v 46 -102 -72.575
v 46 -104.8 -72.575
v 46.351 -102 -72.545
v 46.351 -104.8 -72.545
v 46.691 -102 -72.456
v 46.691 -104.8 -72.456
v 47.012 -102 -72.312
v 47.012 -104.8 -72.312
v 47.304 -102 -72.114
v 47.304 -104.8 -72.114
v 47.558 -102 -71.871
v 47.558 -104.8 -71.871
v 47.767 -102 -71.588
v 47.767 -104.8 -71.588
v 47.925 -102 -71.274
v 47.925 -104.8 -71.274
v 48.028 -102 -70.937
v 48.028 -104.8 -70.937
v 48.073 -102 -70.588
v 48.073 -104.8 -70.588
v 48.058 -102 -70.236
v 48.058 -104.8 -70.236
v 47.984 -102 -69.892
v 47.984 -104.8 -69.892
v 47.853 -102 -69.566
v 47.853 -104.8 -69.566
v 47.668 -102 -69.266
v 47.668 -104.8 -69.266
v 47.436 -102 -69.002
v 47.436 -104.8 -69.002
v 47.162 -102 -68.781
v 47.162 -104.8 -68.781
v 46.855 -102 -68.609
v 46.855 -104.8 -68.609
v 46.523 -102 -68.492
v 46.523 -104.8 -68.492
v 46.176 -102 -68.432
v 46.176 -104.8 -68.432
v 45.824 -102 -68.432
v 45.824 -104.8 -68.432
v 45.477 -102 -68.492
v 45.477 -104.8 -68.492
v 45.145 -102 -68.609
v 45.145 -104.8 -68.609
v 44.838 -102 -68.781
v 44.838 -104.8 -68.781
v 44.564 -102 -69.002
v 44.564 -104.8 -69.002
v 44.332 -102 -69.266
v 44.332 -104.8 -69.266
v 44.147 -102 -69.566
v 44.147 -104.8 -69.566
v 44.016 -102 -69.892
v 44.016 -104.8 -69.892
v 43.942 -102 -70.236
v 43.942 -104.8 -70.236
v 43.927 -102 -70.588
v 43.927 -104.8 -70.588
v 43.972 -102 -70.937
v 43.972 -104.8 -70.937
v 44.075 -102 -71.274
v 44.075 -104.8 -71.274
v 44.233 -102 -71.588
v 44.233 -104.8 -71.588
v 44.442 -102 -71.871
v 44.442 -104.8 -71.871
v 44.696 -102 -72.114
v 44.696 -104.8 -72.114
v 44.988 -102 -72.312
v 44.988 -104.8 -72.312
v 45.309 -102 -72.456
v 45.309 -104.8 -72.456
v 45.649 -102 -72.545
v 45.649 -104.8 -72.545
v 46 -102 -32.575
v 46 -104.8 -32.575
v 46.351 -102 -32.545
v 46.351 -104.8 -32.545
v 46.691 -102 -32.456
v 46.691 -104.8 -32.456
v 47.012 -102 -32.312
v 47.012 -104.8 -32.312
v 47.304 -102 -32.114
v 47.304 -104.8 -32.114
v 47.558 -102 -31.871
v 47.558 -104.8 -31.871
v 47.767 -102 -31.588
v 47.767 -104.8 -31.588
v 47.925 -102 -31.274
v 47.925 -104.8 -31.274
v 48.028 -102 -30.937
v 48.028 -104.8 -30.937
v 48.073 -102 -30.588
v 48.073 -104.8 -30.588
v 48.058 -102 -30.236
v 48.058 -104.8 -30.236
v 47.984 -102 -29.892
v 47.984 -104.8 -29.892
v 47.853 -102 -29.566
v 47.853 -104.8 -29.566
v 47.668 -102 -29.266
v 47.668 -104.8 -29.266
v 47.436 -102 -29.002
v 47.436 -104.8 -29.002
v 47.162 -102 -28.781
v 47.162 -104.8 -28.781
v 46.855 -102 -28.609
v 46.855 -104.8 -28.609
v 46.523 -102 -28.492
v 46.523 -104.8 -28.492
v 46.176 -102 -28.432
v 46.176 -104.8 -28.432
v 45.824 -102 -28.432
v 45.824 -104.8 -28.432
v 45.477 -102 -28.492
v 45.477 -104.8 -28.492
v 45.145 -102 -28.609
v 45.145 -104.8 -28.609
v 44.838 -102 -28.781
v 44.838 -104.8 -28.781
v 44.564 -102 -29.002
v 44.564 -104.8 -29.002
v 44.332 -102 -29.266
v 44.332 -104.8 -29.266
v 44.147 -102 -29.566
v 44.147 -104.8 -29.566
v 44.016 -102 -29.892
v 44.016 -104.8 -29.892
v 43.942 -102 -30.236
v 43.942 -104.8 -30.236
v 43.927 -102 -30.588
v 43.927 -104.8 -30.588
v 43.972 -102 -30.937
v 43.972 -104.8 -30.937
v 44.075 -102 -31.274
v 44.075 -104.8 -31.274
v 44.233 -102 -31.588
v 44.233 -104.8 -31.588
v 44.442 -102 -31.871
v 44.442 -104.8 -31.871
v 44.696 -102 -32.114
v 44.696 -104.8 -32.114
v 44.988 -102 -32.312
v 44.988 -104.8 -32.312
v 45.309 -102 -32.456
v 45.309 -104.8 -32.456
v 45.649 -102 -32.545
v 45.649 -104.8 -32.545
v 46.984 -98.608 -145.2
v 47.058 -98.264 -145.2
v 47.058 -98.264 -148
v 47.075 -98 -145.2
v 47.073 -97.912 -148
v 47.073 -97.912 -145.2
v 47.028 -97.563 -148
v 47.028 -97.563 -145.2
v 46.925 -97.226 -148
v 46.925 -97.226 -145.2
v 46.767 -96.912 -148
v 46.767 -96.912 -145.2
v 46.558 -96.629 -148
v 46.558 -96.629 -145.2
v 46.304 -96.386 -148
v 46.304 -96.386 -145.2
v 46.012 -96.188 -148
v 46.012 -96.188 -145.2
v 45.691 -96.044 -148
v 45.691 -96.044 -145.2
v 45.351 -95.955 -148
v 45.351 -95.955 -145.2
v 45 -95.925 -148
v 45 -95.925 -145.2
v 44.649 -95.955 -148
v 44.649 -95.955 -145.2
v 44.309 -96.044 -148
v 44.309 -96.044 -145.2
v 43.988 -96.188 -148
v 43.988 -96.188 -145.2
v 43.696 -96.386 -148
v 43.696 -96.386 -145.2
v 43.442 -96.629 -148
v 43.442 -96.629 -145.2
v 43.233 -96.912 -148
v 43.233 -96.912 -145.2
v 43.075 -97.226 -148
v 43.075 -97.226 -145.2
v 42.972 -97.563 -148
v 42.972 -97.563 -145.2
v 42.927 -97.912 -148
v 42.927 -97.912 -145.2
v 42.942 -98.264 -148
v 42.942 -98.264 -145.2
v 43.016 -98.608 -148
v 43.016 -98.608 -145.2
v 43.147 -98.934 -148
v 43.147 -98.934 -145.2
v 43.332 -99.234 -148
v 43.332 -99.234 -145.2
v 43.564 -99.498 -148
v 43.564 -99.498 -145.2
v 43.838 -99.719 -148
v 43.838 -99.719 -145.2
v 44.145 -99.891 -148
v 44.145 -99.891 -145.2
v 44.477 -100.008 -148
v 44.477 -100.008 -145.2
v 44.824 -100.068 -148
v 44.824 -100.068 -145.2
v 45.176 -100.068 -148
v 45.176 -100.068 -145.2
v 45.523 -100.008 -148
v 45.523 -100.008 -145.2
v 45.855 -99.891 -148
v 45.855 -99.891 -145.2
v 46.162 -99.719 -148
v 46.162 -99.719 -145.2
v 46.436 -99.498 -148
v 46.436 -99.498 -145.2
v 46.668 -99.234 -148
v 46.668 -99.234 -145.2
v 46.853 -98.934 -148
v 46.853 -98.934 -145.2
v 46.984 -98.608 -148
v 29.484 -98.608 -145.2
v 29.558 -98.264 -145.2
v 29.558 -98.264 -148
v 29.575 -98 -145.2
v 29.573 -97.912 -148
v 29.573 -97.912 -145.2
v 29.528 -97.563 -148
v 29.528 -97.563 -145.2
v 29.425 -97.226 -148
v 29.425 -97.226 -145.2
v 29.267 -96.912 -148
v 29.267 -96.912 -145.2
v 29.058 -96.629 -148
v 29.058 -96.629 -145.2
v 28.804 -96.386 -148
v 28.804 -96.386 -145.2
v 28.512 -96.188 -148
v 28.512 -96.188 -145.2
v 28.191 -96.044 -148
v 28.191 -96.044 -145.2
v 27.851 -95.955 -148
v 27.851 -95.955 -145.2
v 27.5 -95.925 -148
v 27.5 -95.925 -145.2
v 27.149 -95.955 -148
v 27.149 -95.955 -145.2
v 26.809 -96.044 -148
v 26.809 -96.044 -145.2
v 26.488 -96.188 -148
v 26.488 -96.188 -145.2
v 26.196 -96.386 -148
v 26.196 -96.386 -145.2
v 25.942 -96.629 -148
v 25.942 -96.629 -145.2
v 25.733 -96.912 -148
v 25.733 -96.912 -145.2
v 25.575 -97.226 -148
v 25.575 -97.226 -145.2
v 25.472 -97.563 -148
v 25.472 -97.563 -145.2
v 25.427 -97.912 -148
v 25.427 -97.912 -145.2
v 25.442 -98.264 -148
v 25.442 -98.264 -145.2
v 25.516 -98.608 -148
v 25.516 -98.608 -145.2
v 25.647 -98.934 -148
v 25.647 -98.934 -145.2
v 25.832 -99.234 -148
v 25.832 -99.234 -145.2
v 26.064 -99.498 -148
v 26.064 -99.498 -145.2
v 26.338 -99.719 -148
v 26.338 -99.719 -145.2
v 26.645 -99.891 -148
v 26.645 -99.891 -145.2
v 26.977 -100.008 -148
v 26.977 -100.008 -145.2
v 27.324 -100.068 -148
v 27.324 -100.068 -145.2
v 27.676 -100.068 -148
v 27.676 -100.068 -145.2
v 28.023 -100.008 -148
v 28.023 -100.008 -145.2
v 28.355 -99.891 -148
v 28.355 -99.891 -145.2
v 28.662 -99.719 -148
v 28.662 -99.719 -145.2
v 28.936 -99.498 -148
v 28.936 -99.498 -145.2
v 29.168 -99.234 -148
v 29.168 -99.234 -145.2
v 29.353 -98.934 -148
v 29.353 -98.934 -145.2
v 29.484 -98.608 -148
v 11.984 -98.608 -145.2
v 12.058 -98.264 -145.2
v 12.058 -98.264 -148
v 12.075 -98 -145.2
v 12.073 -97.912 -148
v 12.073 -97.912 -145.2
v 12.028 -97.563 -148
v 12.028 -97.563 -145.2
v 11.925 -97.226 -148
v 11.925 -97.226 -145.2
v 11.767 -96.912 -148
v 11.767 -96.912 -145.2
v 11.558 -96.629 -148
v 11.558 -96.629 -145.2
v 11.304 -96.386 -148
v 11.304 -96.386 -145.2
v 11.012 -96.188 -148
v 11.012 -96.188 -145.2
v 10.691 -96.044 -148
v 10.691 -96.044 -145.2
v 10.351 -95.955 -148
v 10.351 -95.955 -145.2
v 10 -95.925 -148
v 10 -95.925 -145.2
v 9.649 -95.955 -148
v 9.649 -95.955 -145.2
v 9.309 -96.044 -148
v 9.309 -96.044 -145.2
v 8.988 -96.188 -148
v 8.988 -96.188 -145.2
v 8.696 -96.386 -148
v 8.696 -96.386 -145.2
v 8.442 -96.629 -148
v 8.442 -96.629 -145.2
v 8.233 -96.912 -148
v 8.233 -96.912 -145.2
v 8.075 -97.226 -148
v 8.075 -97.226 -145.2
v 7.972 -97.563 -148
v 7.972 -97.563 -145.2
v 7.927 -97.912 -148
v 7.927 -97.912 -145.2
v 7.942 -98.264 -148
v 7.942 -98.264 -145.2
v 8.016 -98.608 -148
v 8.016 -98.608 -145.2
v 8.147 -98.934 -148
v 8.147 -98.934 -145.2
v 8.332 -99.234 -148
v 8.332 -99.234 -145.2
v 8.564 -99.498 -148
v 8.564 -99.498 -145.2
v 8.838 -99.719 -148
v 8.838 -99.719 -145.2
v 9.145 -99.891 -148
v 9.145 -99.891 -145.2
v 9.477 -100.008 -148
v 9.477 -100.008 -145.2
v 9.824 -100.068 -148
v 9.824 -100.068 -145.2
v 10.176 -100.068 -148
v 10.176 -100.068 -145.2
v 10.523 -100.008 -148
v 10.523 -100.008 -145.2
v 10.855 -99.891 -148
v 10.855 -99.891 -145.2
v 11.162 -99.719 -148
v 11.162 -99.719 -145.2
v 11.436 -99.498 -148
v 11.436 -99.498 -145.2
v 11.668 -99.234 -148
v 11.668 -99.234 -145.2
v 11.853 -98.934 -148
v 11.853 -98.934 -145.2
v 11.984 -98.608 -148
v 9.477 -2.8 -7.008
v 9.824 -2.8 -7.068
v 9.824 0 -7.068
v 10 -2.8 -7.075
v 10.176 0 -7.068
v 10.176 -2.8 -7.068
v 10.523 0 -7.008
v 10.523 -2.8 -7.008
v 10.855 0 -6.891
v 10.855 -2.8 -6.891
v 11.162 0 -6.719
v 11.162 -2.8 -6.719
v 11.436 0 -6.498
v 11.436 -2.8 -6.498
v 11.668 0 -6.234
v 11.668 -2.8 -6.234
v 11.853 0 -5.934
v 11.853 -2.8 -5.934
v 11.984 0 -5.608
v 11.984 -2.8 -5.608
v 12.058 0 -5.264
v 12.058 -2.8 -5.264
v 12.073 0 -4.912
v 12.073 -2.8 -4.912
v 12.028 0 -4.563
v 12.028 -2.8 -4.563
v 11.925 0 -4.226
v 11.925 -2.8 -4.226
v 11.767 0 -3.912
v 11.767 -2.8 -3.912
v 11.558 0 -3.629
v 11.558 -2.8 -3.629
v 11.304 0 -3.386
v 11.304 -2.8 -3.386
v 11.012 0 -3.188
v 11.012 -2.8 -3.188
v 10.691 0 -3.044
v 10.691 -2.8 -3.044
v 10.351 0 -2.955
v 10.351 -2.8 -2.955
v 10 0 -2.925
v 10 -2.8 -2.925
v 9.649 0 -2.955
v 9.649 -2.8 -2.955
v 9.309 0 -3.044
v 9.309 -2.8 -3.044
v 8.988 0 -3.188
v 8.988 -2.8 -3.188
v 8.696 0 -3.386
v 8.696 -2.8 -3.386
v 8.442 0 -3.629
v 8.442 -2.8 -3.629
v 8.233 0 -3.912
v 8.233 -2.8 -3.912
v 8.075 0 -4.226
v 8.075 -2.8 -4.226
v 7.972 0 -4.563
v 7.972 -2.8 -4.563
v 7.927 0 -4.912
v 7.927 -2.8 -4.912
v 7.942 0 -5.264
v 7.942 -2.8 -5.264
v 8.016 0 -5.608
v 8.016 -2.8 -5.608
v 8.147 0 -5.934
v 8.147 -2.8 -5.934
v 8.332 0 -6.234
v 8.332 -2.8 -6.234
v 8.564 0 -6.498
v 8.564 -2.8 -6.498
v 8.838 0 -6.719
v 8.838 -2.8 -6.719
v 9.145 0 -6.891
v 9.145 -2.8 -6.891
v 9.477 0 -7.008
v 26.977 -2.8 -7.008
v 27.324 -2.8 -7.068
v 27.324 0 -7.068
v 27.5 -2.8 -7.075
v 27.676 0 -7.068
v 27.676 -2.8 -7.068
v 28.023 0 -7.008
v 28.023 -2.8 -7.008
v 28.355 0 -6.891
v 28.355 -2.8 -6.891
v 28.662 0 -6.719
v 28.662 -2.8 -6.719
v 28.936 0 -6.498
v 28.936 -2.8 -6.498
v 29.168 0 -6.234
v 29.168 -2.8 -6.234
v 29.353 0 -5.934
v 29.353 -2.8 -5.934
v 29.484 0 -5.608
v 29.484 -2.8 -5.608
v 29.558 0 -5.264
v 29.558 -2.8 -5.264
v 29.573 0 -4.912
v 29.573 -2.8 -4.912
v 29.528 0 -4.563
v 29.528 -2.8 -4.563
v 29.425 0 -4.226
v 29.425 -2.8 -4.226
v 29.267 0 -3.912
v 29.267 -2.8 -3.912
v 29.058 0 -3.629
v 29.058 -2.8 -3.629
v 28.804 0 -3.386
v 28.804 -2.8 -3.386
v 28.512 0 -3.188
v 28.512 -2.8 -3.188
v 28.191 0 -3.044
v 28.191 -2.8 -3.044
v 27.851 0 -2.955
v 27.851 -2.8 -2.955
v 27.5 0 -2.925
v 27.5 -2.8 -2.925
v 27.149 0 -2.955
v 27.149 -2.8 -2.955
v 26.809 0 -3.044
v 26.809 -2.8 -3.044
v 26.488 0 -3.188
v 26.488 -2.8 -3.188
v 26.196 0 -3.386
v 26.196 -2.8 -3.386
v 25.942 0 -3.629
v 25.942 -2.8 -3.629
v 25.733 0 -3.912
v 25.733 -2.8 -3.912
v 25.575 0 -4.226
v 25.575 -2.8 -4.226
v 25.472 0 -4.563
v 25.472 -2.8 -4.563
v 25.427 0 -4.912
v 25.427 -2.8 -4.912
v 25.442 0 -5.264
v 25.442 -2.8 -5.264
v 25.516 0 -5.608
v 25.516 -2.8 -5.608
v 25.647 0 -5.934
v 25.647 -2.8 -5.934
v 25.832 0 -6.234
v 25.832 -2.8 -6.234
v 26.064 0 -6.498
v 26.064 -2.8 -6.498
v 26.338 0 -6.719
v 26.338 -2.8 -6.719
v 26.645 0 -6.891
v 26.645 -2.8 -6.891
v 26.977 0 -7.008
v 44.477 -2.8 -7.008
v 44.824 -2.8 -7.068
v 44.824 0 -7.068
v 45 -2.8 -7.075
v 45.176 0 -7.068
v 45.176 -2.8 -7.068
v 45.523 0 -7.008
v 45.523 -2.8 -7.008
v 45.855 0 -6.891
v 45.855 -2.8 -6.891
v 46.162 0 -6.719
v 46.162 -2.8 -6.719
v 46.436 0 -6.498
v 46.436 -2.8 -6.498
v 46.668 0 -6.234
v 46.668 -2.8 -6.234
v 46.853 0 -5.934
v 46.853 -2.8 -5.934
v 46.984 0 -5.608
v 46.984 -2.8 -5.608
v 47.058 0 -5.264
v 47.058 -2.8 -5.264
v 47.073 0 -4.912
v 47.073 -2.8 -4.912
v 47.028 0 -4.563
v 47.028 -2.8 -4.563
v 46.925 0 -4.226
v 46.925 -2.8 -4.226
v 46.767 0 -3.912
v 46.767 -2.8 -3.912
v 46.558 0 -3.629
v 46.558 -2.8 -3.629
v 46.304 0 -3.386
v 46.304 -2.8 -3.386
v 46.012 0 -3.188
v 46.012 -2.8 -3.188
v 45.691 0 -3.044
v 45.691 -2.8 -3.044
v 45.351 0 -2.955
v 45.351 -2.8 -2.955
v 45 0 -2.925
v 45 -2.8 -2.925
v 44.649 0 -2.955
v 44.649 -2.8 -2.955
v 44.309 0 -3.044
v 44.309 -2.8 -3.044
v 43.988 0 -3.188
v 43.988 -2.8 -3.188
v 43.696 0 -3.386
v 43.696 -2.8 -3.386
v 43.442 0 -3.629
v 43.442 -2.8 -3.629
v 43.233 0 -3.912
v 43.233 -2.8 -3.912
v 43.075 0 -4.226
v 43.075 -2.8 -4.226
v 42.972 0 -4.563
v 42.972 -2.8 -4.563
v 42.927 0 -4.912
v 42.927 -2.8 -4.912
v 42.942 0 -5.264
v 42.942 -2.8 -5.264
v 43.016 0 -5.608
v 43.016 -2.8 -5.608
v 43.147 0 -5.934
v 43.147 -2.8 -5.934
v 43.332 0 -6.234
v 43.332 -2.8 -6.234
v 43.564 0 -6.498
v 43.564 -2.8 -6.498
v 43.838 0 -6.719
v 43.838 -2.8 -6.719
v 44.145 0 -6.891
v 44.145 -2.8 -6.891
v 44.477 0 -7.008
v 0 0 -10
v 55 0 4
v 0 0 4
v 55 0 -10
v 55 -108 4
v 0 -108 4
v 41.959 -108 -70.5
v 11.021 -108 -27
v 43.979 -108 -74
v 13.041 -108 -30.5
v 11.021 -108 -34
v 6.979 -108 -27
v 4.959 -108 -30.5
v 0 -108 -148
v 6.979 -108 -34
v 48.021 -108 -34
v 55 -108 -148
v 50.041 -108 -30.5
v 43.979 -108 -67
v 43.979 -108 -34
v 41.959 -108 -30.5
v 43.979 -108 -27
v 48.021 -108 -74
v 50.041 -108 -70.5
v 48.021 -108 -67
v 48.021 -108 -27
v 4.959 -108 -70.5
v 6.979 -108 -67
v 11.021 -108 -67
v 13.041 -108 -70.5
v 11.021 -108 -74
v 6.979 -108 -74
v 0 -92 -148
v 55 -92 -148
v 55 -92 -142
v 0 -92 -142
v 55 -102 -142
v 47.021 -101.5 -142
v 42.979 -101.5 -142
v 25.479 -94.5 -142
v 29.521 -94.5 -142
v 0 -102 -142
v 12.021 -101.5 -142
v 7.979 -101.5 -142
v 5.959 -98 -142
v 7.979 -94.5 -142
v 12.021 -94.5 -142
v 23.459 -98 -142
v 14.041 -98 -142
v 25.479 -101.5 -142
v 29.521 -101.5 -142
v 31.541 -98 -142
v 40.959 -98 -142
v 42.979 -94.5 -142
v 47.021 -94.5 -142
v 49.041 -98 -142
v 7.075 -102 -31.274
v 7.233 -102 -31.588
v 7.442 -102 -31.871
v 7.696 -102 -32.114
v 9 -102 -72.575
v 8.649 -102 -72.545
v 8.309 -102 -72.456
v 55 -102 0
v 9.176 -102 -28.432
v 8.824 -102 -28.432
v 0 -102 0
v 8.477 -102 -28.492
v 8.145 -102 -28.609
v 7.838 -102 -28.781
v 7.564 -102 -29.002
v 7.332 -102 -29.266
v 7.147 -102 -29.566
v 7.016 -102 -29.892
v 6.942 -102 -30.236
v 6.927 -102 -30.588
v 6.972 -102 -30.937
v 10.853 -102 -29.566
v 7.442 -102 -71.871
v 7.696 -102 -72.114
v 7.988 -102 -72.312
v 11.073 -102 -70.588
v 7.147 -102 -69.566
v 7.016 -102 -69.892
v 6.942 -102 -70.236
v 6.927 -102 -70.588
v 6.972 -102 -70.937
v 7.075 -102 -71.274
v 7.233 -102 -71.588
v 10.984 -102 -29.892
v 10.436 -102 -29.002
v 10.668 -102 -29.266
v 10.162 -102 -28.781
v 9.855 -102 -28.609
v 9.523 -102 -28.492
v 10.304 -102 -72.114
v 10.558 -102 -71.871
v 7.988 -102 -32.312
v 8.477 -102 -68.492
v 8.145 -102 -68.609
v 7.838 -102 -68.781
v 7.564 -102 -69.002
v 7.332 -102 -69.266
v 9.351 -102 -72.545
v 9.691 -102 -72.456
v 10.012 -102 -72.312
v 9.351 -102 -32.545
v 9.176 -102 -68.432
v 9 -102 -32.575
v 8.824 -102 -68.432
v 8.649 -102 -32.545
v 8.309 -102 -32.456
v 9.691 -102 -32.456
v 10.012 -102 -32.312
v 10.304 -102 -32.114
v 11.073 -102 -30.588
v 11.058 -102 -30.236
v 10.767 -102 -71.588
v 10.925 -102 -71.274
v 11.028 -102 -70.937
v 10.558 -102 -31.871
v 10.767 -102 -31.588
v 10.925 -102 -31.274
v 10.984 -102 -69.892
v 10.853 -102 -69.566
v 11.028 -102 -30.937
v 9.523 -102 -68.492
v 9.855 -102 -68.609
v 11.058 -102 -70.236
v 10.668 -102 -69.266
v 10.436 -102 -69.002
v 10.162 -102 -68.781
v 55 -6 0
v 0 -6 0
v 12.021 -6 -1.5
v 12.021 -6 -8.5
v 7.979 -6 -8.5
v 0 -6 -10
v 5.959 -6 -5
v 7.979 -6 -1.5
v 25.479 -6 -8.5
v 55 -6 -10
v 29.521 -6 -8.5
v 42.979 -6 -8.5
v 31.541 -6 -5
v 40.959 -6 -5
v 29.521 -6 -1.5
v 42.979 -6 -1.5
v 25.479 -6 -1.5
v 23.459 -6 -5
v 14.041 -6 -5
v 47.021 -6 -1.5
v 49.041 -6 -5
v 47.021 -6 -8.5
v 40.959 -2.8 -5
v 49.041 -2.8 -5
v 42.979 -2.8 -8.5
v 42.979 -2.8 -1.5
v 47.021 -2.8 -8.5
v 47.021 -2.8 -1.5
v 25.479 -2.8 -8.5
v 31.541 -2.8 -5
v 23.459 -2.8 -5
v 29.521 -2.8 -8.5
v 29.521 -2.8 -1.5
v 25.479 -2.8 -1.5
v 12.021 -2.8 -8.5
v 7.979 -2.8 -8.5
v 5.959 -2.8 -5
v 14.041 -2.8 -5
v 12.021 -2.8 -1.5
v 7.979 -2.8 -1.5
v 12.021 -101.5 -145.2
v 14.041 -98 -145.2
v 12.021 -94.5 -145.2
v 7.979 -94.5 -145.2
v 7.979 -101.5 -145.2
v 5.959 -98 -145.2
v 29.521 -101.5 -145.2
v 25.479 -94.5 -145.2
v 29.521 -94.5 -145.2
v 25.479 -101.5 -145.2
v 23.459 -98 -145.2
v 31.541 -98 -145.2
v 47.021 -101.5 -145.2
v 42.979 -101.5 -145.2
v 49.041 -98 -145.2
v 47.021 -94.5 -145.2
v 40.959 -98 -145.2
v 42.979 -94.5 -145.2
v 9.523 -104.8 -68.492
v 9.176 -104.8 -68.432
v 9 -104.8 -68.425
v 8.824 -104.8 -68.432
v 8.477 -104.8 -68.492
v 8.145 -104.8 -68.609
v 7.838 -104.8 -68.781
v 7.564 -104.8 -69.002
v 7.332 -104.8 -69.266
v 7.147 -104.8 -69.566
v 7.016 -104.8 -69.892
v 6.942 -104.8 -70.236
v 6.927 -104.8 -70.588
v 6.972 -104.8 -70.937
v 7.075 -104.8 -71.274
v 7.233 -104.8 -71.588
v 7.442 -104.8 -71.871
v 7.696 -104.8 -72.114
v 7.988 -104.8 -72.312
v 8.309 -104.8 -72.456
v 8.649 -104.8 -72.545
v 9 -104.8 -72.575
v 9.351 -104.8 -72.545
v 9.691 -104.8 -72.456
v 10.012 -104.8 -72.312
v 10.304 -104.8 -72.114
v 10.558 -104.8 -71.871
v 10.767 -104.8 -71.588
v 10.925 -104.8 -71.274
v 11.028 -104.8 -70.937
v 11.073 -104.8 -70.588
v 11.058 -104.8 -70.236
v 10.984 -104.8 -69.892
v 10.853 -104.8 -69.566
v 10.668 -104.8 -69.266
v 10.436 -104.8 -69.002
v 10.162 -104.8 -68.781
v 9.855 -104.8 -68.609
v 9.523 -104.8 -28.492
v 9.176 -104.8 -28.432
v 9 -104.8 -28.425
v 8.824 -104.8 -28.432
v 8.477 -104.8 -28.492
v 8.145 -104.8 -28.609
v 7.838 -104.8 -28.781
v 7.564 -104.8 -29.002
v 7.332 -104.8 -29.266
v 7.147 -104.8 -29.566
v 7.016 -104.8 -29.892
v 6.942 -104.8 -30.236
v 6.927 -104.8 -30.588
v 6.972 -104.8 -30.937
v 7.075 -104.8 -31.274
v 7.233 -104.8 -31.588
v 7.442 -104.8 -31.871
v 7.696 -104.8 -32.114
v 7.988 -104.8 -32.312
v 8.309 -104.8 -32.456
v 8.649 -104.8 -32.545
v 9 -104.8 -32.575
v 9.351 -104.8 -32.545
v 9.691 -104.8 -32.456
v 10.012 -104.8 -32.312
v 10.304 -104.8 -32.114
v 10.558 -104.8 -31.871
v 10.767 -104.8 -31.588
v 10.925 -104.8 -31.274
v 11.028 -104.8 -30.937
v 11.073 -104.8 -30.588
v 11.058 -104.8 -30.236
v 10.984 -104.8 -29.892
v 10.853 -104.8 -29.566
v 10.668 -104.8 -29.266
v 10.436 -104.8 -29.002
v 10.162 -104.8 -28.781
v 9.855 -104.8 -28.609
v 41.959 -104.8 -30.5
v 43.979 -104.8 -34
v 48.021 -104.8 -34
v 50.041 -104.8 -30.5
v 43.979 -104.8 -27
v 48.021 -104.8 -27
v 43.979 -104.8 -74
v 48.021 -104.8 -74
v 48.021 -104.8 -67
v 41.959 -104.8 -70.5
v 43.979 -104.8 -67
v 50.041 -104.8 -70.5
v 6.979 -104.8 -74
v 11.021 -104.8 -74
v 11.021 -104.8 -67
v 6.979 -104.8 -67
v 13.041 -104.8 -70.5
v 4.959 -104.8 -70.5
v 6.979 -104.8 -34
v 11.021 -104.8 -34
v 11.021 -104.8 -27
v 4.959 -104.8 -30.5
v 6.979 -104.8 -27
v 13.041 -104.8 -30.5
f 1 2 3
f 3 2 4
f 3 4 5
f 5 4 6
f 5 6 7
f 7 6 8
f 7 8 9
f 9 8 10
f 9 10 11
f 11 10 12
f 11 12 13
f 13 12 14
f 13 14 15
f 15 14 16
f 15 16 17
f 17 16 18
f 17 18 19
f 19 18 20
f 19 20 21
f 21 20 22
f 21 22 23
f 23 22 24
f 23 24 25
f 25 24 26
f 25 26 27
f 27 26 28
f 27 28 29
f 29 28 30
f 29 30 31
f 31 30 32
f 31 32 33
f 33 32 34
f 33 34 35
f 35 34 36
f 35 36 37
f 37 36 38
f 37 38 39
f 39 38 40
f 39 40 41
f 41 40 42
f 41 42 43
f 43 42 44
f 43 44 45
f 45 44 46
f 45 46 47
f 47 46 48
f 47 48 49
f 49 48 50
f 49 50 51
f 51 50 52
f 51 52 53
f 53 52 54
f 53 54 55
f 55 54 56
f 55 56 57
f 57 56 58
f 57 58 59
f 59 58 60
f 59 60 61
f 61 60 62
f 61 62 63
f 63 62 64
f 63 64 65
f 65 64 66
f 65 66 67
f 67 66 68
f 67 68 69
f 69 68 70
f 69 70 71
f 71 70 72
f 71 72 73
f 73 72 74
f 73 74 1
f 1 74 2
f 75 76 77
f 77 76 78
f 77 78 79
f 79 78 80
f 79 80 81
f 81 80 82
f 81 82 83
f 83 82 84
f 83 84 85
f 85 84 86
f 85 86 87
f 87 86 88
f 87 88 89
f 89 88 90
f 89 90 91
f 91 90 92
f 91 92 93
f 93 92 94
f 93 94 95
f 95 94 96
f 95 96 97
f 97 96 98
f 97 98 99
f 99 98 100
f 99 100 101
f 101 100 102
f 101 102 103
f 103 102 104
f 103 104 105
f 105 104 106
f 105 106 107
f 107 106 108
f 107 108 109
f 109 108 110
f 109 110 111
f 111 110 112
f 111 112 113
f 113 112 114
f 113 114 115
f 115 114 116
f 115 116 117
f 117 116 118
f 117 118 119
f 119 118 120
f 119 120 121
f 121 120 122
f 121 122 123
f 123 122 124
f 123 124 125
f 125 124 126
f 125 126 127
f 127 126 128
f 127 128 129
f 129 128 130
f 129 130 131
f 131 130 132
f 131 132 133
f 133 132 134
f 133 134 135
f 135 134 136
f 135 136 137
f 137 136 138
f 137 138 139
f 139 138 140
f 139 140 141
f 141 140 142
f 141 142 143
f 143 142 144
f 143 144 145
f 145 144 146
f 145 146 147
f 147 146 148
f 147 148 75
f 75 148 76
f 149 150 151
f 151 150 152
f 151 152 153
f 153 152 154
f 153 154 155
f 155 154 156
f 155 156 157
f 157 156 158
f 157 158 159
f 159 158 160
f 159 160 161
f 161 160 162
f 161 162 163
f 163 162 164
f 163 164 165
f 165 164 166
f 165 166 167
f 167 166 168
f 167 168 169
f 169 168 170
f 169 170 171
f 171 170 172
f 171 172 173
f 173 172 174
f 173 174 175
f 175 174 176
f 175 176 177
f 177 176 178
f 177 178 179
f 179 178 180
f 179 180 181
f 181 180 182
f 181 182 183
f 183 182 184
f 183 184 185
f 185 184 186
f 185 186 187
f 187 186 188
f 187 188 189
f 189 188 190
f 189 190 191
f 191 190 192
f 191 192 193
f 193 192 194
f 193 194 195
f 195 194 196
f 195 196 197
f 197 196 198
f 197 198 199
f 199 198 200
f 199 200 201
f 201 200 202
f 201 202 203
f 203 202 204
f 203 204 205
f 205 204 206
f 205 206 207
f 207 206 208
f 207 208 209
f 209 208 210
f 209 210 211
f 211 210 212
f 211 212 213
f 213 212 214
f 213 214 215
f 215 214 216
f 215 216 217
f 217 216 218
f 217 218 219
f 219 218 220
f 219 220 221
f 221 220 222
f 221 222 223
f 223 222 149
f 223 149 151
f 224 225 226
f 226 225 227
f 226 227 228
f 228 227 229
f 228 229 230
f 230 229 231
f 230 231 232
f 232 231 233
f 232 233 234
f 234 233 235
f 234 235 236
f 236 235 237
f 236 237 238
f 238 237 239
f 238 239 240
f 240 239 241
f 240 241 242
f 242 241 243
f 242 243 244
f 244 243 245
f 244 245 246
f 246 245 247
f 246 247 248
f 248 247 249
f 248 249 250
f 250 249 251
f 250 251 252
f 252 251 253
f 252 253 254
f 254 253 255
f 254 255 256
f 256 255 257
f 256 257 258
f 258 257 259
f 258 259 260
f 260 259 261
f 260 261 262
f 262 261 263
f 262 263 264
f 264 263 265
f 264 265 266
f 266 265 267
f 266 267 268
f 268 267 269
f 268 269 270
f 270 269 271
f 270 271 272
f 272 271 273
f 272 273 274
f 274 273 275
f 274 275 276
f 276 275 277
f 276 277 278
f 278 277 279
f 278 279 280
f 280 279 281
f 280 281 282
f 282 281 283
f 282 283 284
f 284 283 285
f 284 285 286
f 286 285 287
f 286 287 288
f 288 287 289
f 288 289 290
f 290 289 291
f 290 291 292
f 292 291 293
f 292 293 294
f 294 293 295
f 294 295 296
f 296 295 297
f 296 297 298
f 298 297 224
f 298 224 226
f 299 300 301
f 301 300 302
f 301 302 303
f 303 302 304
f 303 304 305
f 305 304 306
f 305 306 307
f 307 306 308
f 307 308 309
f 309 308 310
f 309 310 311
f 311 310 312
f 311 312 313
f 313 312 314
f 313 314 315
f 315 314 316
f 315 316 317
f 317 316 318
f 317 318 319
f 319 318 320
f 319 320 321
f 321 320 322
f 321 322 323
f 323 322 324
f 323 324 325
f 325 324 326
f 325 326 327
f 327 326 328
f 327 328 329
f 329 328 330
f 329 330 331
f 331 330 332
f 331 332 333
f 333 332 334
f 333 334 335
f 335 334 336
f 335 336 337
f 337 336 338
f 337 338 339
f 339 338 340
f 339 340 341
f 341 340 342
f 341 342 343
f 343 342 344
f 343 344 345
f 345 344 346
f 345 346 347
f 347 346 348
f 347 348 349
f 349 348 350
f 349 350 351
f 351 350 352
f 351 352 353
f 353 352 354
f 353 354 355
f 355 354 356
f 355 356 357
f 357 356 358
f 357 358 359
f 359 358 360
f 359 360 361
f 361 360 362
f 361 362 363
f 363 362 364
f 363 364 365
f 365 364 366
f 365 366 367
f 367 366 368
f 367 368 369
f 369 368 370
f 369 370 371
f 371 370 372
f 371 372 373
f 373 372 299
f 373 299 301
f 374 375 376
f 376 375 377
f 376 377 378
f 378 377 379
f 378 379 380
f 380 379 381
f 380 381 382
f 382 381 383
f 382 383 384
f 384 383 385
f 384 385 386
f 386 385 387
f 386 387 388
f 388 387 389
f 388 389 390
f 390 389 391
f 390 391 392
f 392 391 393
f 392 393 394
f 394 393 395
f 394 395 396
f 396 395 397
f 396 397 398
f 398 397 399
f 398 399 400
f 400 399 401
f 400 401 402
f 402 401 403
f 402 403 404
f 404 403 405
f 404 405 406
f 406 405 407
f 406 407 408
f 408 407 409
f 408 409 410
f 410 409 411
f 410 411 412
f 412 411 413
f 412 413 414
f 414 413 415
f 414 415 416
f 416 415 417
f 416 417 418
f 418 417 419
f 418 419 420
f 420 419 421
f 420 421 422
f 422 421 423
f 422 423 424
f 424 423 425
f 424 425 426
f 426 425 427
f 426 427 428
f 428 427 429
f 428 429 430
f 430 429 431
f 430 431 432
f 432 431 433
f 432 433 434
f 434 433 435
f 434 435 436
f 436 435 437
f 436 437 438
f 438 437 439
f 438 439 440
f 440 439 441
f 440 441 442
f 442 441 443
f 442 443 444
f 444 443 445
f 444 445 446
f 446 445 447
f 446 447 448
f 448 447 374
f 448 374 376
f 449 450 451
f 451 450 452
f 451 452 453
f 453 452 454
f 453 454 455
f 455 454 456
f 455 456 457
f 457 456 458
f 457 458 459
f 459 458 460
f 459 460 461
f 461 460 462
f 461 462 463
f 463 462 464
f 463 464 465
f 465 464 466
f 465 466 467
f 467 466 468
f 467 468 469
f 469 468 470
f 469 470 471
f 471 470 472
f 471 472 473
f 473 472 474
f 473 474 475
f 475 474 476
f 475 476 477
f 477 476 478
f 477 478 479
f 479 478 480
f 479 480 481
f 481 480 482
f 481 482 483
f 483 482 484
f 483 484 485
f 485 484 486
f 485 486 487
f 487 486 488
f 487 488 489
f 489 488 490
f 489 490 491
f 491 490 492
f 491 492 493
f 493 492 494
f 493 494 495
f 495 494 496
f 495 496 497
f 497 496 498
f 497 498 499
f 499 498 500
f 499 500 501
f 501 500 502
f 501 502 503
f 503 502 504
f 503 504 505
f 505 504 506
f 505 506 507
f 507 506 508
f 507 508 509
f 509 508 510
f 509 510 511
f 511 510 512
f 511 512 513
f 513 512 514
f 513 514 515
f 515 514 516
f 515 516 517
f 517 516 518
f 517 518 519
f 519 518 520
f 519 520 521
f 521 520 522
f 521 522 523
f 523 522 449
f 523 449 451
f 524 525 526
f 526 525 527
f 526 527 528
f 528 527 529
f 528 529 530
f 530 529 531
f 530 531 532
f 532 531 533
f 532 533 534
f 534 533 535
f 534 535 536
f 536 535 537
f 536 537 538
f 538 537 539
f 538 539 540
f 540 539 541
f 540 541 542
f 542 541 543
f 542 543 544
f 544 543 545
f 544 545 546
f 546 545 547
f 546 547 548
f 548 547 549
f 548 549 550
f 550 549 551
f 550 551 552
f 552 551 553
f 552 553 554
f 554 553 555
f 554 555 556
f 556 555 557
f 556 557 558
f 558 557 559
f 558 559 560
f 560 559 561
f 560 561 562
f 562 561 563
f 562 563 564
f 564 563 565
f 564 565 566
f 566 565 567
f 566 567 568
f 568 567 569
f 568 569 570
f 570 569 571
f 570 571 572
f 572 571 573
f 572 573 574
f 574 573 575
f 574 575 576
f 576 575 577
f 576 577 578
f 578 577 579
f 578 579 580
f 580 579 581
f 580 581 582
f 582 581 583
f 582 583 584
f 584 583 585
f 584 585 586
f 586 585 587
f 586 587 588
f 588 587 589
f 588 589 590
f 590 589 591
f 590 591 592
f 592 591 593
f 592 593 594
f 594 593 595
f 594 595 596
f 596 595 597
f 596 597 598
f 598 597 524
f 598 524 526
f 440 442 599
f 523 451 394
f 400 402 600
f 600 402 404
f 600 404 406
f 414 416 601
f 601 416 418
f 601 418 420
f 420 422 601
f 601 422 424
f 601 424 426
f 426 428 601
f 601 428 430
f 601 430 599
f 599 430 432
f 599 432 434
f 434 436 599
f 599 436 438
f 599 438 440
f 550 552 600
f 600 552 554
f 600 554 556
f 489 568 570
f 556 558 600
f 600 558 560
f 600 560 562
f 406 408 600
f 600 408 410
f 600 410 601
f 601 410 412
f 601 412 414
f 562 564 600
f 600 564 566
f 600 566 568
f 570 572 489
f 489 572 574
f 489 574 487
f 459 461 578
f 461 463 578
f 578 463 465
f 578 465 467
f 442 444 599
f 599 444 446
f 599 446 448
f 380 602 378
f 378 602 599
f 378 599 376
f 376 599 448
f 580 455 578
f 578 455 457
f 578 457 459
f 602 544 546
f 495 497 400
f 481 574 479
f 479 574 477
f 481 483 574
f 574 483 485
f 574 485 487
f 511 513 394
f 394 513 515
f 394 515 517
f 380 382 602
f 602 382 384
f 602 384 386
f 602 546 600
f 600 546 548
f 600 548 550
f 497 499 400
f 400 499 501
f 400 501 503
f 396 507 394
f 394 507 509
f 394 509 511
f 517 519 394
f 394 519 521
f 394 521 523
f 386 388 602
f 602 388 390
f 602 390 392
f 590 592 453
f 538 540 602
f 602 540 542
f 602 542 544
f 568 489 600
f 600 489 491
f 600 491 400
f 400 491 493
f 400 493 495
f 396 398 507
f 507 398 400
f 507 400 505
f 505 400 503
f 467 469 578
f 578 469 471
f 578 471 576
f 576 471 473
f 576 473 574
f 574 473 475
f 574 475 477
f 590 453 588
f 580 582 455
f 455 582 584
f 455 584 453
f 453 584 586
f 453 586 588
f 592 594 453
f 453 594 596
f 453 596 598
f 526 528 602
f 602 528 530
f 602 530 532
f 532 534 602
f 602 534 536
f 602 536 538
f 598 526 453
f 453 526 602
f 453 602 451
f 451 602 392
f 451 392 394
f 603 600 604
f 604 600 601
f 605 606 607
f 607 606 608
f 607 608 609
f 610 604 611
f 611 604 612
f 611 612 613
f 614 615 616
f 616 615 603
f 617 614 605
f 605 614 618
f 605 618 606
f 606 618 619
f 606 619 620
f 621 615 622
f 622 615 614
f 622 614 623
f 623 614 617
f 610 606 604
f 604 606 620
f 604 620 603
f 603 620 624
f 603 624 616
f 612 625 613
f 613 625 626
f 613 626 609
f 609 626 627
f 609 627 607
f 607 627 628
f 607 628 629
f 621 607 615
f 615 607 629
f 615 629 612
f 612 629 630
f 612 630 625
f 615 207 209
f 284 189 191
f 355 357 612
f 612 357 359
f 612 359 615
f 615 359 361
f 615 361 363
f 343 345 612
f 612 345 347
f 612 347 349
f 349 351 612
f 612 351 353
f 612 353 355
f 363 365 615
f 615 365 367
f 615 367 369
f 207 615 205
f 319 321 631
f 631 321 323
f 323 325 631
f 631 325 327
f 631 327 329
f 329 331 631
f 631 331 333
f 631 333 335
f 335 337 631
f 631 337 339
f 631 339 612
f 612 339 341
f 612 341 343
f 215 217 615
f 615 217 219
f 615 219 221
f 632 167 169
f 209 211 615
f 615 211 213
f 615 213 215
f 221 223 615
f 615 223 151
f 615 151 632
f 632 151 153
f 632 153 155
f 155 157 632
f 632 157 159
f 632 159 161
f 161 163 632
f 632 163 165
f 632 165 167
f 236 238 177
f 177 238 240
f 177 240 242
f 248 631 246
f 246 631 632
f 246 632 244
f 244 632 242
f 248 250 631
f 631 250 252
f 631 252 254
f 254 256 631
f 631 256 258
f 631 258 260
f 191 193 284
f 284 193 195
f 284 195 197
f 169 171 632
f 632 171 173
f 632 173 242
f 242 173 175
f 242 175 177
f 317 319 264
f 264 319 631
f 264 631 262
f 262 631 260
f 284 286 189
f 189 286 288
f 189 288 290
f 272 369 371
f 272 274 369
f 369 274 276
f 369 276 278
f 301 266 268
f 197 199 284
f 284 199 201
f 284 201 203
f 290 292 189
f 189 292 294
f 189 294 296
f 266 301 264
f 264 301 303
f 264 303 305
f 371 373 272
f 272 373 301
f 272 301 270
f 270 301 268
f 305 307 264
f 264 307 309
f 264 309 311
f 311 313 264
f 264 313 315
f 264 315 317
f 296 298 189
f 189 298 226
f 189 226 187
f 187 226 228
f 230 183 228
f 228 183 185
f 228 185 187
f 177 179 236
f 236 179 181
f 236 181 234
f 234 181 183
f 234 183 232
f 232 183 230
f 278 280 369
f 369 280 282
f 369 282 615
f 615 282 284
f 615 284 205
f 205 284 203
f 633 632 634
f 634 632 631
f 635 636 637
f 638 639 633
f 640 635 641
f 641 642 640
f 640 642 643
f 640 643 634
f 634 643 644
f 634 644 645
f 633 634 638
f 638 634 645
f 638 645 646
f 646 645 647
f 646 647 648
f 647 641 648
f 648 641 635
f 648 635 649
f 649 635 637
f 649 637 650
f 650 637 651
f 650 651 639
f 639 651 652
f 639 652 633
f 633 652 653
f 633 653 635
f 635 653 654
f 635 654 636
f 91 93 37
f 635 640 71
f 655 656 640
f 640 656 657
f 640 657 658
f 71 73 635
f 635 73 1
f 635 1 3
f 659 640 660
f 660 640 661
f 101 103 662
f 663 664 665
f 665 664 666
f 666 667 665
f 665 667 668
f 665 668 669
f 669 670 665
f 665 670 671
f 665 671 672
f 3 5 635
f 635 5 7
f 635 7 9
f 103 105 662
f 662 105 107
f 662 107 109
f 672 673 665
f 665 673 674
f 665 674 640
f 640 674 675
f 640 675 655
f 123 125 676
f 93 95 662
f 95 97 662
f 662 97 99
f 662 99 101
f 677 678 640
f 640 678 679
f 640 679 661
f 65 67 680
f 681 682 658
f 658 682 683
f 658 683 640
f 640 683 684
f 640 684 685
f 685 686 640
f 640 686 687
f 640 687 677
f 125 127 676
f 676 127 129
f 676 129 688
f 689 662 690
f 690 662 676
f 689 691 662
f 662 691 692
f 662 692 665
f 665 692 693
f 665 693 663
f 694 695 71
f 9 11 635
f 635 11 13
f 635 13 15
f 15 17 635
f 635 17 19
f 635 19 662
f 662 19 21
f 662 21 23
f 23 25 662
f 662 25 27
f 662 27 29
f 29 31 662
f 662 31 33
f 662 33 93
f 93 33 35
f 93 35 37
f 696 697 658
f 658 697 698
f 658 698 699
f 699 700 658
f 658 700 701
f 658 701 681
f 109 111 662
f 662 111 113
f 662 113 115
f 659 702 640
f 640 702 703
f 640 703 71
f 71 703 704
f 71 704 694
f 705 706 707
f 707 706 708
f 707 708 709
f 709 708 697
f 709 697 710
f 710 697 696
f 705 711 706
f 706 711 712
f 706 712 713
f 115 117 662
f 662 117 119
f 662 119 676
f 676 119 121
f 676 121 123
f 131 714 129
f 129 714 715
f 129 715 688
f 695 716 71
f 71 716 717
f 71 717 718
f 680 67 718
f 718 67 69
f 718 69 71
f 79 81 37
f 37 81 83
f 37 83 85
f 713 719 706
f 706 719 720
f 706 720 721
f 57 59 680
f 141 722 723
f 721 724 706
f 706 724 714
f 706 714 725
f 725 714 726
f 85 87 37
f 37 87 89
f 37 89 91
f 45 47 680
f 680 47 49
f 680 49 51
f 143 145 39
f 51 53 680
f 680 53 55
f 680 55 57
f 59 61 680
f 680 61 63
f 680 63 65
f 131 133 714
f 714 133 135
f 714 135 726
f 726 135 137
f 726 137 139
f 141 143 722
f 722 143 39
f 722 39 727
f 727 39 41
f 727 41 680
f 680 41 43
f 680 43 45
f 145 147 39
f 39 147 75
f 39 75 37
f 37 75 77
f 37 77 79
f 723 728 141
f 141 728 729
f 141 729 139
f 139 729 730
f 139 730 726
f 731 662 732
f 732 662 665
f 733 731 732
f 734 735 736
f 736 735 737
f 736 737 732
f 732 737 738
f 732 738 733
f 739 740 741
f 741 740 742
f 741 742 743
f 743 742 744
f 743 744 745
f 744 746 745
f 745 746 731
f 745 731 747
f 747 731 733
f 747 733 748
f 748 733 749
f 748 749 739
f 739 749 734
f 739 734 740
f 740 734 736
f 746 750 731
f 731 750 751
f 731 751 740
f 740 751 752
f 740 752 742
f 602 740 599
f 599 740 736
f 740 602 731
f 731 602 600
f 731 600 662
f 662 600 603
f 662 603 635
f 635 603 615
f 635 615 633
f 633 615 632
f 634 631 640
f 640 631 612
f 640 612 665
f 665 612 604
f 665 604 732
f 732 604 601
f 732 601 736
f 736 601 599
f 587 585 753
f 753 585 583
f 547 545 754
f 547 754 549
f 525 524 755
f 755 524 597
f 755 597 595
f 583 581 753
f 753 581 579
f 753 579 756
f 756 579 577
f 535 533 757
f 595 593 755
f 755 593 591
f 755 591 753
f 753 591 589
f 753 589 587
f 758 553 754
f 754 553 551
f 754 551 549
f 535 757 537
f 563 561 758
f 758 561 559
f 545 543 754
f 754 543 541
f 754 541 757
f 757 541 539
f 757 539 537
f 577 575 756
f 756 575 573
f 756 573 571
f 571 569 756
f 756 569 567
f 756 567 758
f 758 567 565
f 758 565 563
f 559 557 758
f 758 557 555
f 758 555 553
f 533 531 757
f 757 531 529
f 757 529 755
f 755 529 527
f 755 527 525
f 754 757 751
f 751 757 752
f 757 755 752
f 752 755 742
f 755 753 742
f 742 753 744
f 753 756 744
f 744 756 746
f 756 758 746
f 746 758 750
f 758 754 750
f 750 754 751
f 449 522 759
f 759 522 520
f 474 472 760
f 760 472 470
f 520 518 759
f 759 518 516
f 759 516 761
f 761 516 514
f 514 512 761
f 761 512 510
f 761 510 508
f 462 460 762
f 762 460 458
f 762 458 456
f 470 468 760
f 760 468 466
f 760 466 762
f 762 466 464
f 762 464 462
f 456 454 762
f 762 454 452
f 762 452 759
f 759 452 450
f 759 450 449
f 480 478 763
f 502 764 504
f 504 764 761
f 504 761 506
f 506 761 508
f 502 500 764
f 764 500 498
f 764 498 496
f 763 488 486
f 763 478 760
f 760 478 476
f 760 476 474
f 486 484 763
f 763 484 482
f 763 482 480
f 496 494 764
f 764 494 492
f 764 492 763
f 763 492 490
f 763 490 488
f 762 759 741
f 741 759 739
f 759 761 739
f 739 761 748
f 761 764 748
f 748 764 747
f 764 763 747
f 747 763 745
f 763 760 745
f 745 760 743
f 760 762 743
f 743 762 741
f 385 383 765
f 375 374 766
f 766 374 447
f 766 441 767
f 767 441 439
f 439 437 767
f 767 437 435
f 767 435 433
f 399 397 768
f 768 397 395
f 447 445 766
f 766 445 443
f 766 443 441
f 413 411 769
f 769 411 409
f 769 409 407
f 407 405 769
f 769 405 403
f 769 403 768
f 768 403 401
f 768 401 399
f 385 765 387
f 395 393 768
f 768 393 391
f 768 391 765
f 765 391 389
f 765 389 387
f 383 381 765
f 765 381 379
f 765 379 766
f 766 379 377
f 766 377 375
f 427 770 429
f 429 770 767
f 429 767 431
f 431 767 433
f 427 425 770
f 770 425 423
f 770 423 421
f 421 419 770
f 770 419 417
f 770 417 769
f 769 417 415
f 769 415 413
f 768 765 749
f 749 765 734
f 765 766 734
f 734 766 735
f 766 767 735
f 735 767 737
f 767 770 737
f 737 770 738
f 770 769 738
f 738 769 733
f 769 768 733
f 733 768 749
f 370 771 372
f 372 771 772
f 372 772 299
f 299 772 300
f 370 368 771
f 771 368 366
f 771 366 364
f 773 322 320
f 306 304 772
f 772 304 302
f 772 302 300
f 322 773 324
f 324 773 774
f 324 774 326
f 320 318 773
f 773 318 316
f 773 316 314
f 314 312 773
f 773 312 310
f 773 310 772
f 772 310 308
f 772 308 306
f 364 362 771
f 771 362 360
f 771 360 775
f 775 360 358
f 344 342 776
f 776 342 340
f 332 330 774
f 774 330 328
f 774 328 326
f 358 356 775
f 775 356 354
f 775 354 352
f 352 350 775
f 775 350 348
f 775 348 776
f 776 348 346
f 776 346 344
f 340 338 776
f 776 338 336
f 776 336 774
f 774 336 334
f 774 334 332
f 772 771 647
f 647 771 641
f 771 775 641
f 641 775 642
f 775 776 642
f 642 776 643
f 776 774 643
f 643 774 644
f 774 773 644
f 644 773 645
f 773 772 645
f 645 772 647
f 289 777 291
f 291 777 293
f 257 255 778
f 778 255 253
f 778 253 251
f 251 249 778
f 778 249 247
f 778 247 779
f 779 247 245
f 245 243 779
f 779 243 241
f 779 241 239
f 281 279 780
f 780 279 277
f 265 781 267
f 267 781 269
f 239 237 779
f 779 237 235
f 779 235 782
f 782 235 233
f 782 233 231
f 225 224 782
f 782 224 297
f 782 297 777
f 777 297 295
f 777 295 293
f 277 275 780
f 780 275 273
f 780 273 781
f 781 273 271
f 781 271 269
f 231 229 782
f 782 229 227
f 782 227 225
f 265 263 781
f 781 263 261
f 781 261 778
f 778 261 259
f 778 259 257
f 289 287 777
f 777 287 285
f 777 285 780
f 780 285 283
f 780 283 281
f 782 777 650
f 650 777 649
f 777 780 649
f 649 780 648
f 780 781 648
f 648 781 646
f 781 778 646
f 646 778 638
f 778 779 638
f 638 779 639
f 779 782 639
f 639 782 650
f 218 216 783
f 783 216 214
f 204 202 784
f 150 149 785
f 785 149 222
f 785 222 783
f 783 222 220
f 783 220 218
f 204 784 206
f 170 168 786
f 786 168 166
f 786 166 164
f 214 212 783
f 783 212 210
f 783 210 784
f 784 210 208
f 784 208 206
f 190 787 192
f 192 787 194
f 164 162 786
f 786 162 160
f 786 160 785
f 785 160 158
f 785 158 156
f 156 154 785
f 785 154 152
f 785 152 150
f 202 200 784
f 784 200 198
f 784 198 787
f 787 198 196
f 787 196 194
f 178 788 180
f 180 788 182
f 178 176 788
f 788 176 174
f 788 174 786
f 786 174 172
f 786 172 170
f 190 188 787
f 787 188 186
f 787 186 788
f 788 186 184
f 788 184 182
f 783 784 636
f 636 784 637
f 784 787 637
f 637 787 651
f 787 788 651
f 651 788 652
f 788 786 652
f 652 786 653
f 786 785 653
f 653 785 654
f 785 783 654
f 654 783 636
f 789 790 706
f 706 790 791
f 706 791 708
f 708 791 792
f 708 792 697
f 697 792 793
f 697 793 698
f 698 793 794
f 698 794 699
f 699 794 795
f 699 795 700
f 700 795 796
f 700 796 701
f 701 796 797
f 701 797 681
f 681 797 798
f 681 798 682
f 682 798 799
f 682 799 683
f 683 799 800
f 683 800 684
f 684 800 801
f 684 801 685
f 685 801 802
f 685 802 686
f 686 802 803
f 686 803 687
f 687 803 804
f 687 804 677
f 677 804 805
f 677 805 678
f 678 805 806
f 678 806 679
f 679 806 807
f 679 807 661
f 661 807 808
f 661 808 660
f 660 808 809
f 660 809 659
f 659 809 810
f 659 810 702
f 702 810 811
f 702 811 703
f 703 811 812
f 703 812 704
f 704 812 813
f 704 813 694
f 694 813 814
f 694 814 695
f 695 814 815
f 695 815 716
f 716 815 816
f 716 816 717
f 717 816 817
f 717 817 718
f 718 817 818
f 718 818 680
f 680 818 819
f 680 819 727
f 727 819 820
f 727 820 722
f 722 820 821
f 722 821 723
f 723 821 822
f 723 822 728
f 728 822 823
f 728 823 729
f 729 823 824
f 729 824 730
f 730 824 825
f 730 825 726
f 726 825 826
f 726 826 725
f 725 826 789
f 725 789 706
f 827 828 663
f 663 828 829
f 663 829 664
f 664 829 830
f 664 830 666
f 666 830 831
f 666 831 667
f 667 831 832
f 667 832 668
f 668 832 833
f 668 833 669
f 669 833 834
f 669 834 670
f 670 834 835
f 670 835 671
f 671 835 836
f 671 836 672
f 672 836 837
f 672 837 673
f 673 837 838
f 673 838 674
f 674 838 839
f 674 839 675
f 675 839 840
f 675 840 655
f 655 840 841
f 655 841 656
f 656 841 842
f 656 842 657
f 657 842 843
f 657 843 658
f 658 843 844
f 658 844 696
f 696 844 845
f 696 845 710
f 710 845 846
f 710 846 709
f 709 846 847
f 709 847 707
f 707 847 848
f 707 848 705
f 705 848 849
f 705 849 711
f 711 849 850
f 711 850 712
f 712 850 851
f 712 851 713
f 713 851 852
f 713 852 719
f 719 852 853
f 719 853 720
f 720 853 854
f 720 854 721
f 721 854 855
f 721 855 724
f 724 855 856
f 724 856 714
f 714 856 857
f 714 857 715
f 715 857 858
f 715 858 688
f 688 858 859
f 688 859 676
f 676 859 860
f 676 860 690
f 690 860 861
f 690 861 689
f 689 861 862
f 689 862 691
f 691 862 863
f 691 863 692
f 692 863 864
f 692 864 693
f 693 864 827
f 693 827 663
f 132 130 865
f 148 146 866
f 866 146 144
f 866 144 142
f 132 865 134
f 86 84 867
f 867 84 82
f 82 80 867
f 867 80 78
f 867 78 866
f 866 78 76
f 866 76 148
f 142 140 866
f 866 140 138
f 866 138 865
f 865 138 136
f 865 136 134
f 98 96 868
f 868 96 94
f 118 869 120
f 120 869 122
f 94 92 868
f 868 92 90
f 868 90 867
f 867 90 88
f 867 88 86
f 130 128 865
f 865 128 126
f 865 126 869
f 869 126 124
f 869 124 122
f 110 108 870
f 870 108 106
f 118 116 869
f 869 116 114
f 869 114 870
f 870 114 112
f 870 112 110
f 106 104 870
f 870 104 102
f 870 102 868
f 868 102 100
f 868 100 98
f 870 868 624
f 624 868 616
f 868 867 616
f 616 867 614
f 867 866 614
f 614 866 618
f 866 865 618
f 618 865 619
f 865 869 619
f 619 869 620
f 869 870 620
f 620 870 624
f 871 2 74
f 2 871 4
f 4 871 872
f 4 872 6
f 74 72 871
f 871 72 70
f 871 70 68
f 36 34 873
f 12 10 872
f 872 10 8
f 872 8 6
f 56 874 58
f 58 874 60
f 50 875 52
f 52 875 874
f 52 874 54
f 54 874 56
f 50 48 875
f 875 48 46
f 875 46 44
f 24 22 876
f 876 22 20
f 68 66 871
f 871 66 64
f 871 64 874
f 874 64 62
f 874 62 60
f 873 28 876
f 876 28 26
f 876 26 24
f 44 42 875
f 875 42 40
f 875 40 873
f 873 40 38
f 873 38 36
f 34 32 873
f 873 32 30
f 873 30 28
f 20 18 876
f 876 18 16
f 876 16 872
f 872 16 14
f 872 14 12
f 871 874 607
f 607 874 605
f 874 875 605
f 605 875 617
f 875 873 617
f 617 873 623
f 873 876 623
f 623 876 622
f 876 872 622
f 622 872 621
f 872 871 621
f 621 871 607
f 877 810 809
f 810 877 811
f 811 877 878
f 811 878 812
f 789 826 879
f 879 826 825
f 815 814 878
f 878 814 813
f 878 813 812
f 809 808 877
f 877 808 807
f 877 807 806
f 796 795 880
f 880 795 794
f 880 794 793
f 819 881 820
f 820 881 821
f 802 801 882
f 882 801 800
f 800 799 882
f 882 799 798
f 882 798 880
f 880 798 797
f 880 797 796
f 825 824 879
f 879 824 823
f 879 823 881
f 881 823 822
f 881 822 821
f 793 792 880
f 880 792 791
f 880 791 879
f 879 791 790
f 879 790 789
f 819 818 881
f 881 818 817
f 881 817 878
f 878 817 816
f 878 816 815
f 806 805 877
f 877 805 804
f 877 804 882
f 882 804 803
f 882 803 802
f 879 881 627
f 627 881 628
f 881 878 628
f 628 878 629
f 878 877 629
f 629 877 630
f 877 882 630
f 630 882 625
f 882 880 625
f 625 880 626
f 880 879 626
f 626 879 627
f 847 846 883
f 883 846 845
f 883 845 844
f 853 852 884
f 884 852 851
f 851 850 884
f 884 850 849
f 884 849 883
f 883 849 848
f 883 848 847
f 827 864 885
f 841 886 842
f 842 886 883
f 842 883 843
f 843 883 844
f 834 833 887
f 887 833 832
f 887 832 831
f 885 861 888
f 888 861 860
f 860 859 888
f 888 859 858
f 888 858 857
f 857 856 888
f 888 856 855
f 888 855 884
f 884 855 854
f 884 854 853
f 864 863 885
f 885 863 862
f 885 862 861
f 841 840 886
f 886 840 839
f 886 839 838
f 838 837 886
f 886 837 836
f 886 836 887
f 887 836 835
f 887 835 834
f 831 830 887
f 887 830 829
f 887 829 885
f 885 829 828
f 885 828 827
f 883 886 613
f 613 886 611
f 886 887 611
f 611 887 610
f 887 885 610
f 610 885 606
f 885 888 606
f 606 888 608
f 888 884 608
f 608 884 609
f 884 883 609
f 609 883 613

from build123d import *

# Parameters (mm, degrees)
BOSS_EXTRUDE1_DEPTH = 55
CUT_EXTRUDE1_REACH  = 193.293
SKETCH2_R           = 2.075
CUT_EXTRUDE2_REACH  = 196.404
SKETCH3_R           = 2.075
CUT_EXTRUDE3_DEPTH  = 3.2
CUT_EXTRUDE4_DEPTH  = 3.2
CUT_EXTRUDE5_REACH  = 193.293
SKETCH6_R           = 2.075
CUT_EXTRUDE6_DEPTH  = 3.2


with BuildPart() as part:
    # Sketch1 → Boss-Extrude1 (new body)
    with BuildSketch(Plane(origin=(0, 0, 0), x_dir=(0, 0, -1), z_dir=(1, 0, 0))):
        Polygon((0, -102), (0, -6), (10, -6), (10, 0), (0, 0), (-4, 0), (-4, -108), (148, -108), (148, -92), (142, -92), (142, -102), align=None)
    extrude(amount=BOSS_EXTRUDE1_DEPTH)

    # Sketch2 → Cut-Extrude1 (cut, up to next)
    with BuildSketch(Plane(origin=(0, 0, 0), x_dir=(1, 0, 0), z_dir=(0, 1, 0)), mode=Mode.PRIVATE) as cut_extrude1_sk1:
        with Locations(Location((10, 5, 0), (0, 0, 270))):
            Circle(SKETCH2_R)
    cut_extrude1_tool1 = extrude(cut_extrude1_sk1.sketch, amount=-CUT_EXTRUDE1_REACH, mode=Mode.PRIVATE) & part.part
    # Sketch2 → Cut-Extrude1 (cut, up to next)
    with BuildSketch(Plane(origin=(0, 0, 0), x_dir=(1, 0, 0), z_dir=(0, 1, 0)), mode=Mode.PRIVATE) as cut_extrude1_sk2:
        with Locations(Location((27.5, 5, 0), (0, 0, 270))):
            Circle(SKETCH2_R)
    cut_extrude1_tool2 = extrude(cut_extrude1_sk2.sketch, amount=-CUT_EXTRUDE1_REACH, mode=Mode.PRIVATE) & part.part
    # Sketch2 → Cut-Extrude1 (cut, up to next)
    with BuildSketch(Plane(origin=(0, 0, 0), x_dir=(1, 0, 0), z_dir=(0, 1, 0)), mode=Mode.PRIVATE) as cut_extrude1_sk3:
        with Locations(Location((45, 5, 0), (0, 0, 270))):
            Circle(SKETCH2_R)
    cut_extrude1_tool3 = extrude(cut_extrude1_sk3.sketch, amount=-CUT_EXTRUDE1_REACH, mode=Mode.PRIVATE) & part.part
    add(cut_extrude1_tool1.solids().sort_by_distance((10, 0, -5))[0], mode=Mode.SUBTRACT)
    add(cut_extrude1_tool2.solids().sort_by_distance((27.5, 0, -5))[0], mode=Mode.SUBTRACT)
    add(cut_extrude1_tool3.solids().sort_by_distance((45, 0, -5))[0], mode=Mode.SUBTRACT)

    # Sketch3 → Cut-Extrude2 (cut, up to next)
    with BuildSketch(Plane(origin=(0, 0, -148), x_dir=(-1, 0, 0), z_dir=(0, 0, -1)), mode=Mode.PRIVATE) as cut_extrude2_sk1:
        with Locations(Location((-45, -98, 0), (0, 0, 90))):
            Circle(SKETCH3_R)
    cut_extrude2_tool1 = extrude(cut_extrude2_sk1.sketch, amount=-CUT_EXTRUDE2_REACH, mode=Mode.PRIVATE) & part.part
    # Sketch3 → Cut-Extrude2 (cut, up to next)
    with BuildSketch(Plane(origin=(0, 0, -148), x_dir=(-1, 0, 0), z_dir=(0, 0, -1)), mode=Mode.PRIVATE) as cut_extrude2_sk2:
        with Locations(Location((-27.5, -98, 0), (0, 0, 90))):
            Circle(SKETCH3_R)
    cut_extrude2_tool2 = extrude(cut_extrude2_sk2.sketch, amount=-CUT_EXTRUDE2_REACH, mode=Mode.PRIVATE) & part.part
    # Sketch3 → Cut-Extrude2 (cut, up to next)
    with BuildSketch(Plane(origin=(0, 0, -148), x_dir=(-1, 0, 0), z_dir=(0, 0, -1)), mode=Mode.PRIVATE) as cut_extrude2_sk3:
        with Locations(Location((-10, -98, 0), (0, 0, 90))):
            Circle(SKETCH3_R)
    cut_extrude2_tool3 = extrude(cut_extrude2_sk3.sketch, amount=-CUT_EXTRUDE2_REACH, mode=Mode.PRIVATE) & part.part
    add(cut_extrude2_tool1.solids().sort_by_distance((45, -98, -148))[0], mode=Mode.SUBTRACT)
    add(cut_extrude2_tool2.solids().sort_by_distance((27.5, -98, -148))[0], mode=Mode.SUBTRACT)
    add(cut_extrude2_tool3.solids().sort_by_distance((10, -98, -148))[0], mode=Mode.SUBTRACT)

    # Sketch4 → Cut-Extrude3 (cut)
    with BuildSketch(Plane.XZ.offset(6)):
        Polygon((49.041451884, -5), (47.020725942, -1.5), (42.979274058, -1.5), (40.958548116, -5), (42.979274058, -8.5), (47.020725942, -8.5), align=None)
        Polygon((29.520725942, -8.5), (31.541451884, -5), (29.520725942, -1.5), (25.479274058, -1.5), (23.458548116, -5), (25.479274058, -8.5), align=None)
        Polygon((14.041451884, -5), (12.020725942, -1.5), (7.979274058, -1.5), (5.958548116, -5), (7.979274058, -8.5), (12.020725942, -8.5), align=None)
    extrude(amount=-CUT_EXTRUDE3_DEPTH, mode=Mode.SUBTRACT)

    # Sketch5 → Cut-Extrude4 (cut)
    with BuildSketch(Plane.XY.offset(-142)):
        Polygon((14.041451884, -98), (12.020725942, -94.5), (7.979274058, -94.5), (5.958548116, -98), (7.979274058, -101.5), (12.020725942, -101.5), align=None)
        Polygon((31.541451884, -98), (29.520725942, -94.5), (25.479274058, -94.5), (23.458548116, -98), (25.479274058, -101.5), (29.520725942, -101.5), align=None)
        Polygon((47.020725942, -101.5), (49.041451884, -98), (47.020725942, -94.5), (42.979274058, -94.5), (40.958548116, -98), (42.979274058, -101.5), align=None)
    extrude(amount=-CUT_EXTRUDE4_DEPTH, mode=Mode.SUBTRACT)

    # Sketch6 → Cut-Extrude5 (cut, up to next)
    with BuildSketch(Plane.XZ.offset(108), mode=Mode.PRIVATE) as cut_extrude5_sk1:
        with Locations(Location((46, -30.5, 0), (0, 0, 270))):
            Circle(SKETCH6_R)
    cut_extrude5_tool1 = extrude(cut_extrude5_sk1.sketch, amount=-CUT_EXTRUDE5_REACH, mode=Mode.PRIVATE) & part.part
    # Sketch6 → Cut-Extrude5 (cut, up to next)
    with BuildSketch(Plane.XZ.offset(108), mode=Mode.PRIVATE) as cut_extrude5_sk2:
        with Locations(Location((46, -70.5, 0), (0, 0, 270))):
            Circle(SKETCH6_R)
    cut_extrude5_tool2 = extrude(cut_extrude5_sk2.sketch, amount=-CUT_EXTRUDE5_REACH, mode=Mode.PRIVATE) & part.part
    # Sketch6 → Cut-Extrude5 (cut, up to next)
    with BuildSketch(Plane.XZ.offset(108), mode=Mode.PRIVATE) as cut_extrude5_sk3:
        with Locations(Location((9, -70.5, 0), (0, 0, 270))):
            Circle(SKETCH6_R)
    cut_extrude5_tool3 = extrude(cut_extrude5_sk3.sketch, amount=-CUT_EXTRUDE5_REACH, mode=Mode.PRIVATE) & part.part
    # Sketch6 → Cut-Extrude5 (cut, up to next)
    with BuildSketch(Plane.XZ.offset(108), mode=Mode.PRIVATE) as cut_extrude5_sk4:
        with Locations(Location((9, -30.5, 0), (0, 0, 270))):
            Circle(SKETCH6_R)
    cut_extrude5_tool4 = extrude(cut_extrude5_sk4.sketch, amount=-CUT_EXTRUDE5_REACH, mode=Mode.PRIVATE) & part.part
    add(cut_extrude5_tool1.solids().sort_by_distance((46, -108, -30.5))[0], mode=Mode.SUBTRACT)
    add(cut_extrude5_tool2.solids().sort_by_distance((46, -108, -70.5))[0], mode=Mode.SUBTRACT)
    add(cut_extrude5_tool3.solids().sort_by_distance((9, -108, -70.5))[0], mode=Mode.SUBTRACT)
    add(cut_extrude5_tool4.solids().sort_by_distance((9, -108, -30.5))[0], mode=Mode.SUBTRACT)

    # Sketch7 → Cut-Extrude6 (cut)
    with BuildSketch(Plane.XZ.offset(108)):
        Polygon((48.020725942, -27), (43.979274058, -27), (41.958548116, -30.5), (43.979274058, -34), (48.020725942, -34), (50.041451884, -30.5), align=None)
        Polygon((43.979274058, -74), (48.020725942, -74), (50.041451884, -70.5), (48.020725942, -67), (43.979274058, -67), (41.958548116, -70.5), align=None)
        Polygon((13.041451884, -70.5), (11.020725942, -74), (6.979274058, -74), (4.958548116, -70.5), (6.979274058, -67), (11.020725942, -67), align=None)
        Polygon((4.958548116, -30.5), (6.979274058, -27), (11.020725942, -27), (13.041451884, -30.5), (11.020725942, -34), (6.979274058, -34), align=None)
    extrude(amount=-CUT_EXTRUDE6_DEPTH, mode=Mode.SUBTRACT)


solid = part.part
